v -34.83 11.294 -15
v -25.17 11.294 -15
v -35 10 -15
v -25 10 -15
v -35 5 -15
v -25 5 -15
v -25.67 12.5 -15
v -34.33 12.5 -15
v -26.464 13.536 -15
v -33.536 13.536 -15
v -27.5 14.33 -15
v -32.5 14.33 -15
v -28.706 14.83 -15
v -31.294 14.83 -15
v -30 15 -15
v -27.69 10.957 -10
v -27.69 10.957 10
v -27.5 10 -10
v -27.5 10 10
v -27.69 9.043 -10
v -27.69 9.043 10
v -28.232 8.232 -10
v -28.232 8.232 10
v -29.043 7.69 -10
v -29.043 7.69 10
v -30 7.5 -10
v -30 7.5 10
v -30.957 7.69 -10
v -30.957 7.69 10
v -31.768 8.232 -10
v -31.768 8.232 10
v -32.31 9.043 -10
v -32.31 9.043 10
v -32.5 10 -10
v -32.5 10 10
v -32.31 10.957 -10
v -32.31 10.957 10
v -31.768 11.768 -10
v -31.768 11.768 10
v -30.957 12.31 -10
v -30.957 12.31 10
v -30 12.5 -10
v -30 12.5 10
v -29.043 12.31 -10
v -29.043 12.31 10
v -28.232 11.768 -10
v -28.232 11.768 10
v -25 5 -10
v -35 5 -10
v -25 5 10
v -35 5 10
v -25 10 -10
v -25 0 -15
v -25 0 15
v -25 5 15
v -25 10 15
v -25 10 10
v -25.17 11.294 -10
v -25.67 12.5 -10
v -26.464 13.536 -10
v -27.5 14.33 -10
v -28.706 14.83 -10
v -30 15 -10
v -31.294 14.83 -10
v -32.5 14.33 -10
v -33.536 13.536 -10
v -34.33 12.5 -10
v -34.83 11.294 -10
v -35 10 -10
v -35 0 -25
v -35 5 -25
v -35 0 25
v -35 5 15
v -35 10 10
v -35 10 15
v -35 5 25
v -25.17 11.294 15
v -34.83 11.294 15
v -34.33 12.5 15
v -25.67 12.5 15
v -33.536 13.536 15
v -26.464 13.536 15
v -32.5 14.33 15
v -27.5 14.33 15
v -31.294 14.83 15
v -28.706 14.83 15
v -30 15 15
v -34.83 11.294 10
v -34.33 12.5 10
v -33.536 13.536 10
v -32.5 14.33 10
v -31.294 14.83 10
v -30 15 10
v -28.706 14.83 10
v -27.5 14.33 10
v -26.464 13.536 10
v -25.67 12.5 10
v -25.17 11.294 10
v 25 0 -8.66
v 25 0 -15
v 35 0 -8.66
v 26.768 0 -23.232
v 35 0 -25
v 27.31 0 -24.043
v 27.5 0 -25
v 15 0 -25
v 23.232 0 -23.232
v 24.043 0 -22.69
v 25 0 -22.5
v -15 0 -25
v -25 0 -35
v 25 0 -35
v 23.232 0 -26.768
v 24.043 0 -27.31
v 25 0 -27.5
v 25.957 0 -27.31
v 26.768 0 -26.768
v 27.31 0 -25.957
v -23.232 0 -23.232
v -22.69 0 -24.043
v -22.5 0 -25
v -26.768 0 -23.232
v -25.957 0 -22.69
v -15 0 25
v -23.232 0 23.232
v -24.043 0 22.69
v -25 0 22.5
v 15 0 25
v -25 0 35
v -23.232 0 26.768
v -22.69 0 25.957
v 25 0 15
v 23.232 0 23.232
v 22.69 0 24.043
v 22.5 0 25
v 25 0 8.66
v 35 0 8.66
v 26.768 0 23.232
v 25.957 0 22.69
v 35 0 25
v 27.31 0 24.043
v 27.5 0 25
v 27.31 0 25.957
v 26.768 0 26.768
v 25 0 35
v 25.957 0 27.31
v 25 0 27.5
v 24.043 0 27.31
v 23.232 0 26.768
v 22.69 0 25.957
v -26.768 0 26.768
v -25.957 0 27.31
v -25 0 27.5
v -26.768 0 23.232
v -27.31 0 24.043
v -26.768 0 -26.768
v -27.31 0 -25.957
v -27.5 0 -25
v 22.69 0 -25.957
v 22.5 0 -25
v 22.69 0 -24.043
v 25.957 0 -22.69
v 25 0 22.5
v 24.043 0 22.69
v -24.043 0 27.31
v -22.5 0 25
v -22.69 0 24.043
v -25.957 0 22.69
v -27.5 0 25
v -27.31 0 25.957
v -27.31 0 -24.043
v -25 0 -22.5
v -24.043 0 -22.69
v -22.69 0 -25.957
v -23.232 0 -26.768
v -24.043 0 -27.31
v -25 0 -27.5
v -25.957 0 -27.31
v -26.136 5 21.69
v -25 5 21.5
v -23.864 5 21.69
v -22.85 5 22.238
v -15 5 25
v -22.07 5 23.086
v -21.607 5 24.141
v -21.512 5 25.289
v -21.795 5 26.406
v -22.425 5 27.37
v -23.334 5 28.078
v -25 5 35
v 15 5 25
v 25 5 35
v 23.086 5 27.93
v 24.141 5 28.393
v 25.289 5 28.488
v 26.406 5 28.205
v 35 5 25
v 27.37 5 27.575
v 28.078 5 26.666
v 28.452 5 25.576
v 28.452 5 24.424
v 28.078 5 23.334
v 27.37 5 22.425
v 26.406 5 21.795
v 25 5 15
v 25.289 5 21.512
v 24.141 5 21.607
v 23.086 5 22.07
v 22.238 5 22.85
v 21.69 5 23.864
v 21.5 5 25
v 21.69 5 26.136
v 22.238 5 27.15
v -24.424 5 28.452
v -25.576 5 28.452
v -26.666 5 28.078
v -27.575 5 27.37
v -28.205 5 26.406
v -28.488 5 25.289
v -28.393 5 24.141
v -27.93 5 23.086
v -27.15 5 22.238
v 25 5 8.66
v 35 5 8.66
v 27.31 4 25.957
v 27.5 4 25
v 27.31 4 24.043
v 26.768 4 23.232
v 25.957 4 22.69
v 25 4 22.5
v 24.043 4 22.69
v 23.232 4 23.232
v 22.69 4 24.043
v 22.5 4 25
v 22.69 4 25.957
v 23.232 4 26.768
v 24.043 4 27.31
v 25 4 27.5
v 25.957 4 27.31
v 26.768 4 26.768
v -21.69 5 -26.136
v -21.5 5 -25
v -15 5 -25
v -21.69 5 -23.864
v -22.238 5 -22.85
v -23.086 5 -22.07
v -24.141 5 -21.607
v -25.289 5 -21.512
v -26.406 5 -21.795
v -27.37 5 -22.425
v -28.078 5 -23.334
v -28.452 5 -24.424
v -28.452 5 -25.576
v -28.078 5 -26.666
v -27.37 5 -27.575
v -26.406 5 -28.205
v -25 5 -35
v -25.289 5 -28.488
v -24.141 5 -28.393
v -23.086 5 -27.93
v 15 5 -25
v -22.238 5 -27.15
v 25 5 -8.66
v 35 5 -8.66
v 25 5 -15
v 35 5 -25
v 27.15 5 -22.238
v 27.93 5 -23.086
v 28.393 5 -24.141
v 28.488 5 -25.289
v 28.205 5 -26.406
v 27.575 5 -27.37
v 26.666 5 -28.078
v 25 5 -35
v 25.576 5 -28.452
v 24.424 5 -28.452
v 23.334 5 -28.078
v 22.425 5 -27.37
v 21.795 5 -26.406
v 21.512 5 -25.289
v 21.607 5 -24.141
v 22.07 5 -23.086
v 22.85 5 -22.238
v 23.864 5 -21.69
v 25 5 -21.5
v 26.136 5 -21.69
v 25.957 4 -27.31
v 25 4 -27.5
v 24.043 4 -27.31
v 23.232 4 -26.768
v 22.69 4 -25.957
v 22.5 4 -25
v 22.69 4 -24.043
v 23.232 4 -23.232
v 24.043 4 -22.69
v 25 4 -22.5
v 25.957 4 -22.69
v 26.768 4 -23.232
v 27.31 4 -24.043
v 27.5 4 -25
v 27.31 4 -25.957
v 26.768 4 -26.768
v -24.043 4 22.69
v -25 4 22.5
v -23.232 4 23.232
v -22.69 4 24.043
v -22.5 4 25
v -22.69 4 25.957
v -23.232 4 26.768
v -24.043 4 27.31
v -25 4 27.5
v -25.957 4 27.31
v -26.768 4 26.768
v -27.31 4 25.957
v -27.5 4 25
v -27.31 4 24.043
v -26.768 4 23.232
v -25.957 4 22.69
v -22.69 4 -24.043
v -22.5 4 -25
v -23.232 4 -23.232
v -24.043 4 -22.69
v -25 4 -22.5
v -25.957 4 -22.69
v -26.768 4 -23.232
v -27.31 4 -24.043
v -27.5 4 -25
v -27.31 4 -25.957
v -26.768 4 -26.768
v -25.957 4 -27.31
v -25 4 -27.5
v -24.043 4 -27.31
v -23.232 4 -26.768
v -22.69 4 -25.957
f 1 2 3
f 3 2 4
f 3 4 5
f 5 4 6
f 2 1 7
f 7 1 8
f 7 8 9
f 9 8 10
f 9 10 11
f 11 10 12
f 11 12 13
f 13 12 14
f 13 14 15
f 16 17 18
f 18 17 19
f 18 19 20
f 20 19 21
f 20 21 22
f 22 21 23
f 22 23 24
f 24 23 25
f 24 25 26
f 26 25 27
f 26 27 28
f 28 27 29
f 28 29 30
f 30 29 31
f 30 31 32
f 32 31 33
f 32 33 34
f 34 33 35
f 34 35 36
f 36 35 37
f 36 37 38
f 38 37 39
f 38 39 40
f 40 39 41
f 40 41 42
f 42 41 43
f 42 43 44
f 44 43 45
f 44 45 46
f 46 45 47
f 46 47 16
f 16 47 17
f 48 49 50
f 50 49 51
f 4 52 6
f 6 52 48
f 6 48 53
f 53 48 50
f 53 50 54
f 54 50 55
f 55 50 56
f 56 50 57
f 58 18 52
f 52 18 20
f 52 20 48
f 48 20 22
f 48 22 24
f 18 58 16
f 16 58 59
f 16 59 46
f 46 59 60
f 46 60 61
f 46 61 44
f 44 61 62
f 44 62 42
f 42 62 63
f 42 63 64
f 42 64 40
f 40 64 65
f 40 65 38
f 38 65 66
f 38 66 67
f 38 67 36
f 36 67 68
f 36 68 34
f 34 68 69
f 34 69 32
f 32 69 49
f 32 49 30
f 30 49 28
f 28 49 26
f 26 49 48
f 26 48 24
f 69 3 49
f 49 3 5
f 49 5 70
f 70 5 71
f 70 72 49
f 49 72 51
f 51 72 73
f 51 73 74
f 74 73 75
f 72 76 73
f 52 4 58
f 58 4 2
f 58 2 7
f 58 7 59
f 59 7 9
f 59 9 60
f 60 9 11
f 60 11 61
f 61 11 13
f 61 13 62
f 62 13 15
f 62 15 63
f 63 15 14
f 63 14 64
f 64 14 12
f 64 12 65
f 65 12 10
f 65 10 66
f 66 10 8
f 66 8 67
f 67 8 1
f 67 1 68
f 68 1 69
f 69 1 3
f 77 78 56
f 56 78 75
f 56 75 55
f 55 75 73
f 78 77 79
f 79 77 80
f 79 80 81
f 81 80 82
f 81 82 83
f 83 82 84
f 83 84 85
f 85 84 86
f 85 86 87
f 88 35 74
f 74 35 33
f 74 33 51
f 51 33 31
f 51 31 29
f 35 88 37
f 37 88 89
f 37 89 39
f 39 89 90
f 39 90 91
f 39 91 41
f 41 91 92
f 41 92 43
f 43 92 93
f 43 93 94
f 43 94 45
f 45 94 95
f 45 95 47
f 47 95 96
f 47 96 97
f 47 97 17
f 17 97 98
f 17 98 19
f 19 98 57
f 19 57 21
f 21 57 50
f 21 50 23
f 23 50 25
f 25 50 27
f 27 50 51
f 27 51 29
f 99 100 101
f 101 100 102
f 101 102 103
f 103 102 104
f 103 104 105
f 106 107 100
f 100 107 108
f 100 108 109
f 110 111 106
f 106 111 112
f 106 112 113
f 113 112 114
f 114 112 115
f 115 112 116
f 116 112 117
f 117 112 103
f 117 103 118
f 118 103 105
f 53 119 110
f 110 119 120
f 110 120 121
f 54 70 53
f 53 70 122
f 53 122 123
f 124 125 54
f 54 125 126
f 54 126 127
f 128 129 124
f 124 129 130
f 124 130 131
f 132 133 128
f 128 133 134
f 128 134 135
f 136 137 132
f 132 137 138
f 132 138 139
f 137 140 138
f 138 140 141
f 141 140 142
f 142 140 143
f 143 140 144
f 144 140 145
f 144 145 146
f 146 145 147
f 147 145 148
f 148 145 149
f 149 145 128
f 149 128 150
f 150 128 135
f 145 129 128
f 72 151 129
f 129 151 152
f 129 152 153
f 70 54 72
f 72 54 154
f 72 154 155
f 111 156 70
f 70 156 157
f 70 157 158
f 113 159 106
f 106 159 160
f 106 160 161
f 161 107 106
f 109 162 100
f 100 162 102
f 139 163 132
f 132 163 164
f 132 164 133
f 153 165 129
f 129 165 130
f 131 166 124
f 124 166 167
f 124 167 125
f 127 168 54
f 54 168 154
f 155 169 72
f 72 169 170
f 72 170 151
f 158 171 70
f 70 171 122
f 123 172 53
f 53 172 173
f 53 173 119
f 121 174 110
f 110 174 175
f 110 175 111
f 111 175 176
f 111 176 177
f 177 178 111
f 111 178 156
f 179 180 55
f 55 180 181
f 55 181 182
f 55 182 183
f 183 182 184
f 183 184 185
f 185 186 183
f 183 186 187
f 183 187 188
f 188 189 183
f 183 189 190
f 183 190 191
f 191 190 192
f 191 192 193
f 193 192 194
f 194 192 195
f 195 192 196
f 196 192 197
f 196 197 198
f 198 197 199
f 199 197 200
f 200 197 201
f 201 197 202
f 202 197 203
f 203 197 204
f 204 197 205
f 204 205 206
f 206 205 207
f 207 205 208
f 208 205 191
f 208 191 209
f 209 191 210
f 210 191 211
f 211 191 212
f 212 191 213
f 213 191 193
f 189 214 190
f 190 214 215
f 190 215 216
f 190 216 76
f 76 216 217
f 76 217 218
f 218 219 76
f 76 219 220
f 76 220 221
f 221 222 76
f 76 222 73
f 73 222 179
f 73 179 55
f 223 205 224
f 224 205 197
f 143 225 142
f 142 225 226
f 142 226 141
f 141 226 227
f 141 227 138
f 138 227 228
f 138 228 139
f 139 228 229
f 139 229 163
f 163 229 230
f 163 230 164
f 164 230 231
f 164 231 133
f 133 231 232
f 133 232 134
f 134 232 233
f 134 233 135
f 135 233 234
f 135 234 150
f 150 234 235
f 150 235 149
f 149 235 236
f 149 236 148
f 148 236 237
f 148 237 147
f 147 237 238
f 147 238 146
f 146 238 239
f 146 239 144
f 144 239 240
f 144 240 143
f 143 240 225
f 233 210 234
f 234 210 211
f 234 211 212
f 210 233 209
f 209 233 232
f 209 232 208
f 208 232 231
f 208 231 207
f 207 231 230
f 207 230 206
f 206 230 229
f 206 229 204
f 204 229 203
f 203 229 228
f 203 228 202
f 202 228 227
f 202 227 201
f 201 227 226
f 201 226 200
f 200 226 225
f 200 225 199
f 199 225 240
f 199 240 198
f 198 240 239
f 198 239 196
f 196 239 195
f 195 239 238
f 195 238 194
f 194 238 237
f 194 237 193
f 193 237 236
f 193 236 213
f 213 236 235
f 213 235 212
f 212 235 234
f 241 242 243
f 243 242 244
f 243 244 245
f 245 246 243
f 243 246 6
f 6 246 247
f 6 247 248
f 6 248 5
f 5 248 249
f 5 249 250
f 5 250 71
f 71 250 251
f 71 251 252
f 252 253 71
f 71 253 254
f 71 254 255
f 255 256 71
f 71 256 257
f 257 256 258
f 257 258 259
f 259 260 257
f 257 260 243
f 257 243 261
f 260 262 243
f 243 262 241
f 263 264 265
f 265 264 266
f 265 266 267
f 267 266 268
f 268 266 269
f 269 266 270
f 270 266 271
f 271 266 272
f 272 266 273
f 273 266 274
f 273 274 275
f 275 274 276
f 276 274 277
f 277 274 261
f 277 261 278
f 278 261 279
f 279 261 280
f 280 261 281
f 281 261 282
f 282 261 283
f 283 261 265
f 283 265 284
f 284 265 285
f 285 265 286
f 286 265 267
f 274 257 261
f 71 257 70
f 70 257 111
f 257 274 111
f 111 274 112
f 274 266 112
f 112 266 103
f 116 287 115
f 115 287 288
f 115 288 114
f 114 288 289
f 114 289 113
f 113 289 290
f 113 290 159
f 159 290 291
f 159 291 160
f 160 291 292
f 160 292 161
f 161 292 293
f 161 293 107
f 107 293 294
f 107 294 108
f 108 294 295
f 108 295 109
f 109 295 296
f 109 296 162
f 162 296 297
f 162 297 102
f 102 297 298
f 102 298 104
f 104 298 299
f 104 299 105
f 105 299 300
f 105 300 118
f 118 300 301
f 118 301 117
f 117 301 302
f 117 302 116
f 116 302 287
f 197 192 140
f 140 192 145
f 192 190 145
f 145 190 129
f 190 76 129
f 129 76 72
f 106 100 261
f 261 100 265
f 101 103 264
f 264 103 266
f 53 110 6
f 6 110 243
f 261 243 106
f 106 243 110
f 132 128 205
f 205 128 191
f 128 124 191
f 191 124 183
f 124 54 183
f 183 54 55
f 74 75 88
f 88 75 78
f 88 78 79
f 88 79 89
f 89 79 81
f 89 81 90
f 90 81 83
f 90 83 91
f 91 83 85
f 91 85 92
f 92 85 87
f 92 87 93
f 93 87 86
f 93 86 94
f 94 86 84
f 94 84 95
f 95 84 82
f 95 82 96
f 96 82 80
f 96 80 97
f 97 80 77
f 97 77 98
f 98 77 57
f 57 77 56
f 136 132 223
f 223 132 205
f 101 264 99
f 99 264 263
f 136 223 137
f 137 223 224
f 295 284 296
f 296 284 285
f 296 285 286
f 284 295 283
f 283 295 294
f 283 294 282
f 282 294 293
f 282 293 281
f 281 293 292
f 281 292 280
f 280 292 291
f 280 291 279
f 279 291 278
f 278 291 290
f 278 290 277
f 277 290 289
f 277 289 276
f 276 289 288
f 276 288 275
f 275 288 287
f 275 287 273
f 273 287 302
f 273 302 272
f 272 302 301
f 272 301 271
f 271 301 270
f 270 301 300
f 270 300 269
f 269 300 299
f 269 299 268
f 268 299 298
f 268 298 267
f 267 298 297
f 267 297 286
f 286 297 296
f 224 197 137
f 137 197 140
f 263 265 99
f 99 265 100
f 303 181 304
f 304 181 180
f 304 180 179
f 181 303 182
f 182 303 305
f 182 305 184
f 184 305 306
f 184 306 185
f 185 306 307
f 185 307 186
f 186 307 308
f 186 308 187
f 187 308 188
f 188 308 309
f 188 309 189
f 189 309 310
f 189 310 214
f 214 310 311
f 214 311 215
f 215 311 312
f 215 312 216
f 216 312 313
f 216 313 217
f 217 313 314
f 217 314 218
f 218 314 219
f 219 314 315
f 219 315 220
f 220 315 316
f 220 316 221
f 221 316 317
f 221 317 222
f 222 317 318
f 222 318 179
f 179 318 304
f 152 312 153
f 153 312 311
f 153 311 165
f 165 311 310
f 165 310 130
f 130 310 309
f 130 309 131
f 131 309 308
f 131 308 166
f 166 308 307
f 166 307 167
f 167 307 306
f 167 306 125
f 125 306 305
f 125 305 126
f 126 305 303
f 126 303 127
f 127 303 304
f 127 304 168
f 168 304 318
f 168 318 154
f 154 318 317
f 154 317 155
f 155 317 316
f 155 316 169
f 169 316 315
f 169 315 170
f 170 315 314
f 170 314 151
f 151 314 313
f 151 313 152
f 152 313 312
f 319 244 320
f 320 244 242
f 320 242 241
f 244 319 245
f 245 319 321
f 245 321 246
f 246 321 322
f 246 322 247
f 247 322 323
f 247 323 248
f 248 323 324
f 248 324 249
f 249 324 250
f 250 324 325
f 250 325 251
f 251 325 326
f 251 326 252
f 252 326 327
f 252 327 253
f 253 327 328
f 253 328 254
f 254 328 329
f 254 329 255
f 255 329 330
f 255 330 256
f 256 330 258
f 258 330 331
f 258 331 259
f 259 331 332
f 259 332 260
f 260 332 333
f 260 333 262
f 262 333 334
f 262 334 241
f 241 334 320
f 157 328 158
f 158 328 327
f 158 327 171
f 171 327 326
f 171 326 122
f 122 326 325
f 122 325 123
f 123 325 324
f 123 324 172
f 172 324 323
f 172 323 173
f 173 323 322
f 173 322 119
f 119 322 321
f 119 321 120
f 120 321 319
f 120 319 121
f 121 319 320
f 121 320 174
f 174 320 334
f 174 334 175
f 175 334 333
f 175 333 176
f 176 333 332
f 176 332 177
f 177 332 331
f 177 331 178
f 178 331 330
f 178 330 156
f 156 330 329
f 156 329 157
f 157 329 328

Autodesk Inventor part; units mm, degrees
ref_plane "YZ Plane" through (0, 0, 0) normal (1, 0, 0) x (0, 1, 0)
ref_plane "XZ Plane" through (0, 0, 0) normal (0, 1, 0) x (-1, 0, 0)
ref_plane "XY Plane" through (0, 0, 0) normal (0, 0, 1) x (1, 0, 0)
sketch "Sketch2" plane through (0, 0, 0) normal (0, 1, 0) x (-1, 0, 0)
  line L0 (35, -35) -> (-35, -35)
  line L1 (-35, -35) -> (-35, 35)
  line L2 (-35, 35) -> (35, 35)
  line L3 (35, 35) -> (35, -35)
  line L4 (35, -35) -> (-35, 35) construction
  line L5 (-35, -35) -> (35, 35) construction
  line L6 (25, 25) -> (-25, 25)
  line L7 (-25, 25) -> (-25, -25)
  line L8 (-25, -25) -> (25, -25)
  line L9 (25, -25) -> (25, 25)
  point P0 (0, 0)
  dimension "d0" = 70
  dimension "d1" = 10
  dimension "d27" = 70
extrude "Extrusion1" add sketch "Sketch2" along normal blind 5
chamfer "Chamfer1" distance 10 angle 45 8 edges at (-25, 2.5, 25) (25, 2.5, 25) (-25, 2.5, -25) (25, 2.5, -25) (-35, 2.5, 35) (35, 2.5, 35) (35, 2.5, -35) (-35, 2.5, -35)
sketch "Sketch3" plane through (0, 5, 0) normal (0, 1, 0) x (1, 0, 0)
  line L0 (-35, 25) -> (-35, -25) construction
  line L1 (25, 35) -> (-25, 35) construction
  circle A0 centre (-25, 25) radius 2.5
  point P0 (0, 0)
  dimension "d7" = 10
  dimension "d8" = 10
  dimension "d9" = 5
extrude "Extrusion2" cut sketch "Sketch3" against normal through all
pattern_circular "Circular Pattern1" count 4 over 360 about axis through (0, -10, 0) along (0, 1, 0) of "Extrusion2"
sketch "Sketch4" plane through (0, 0, 0) normal (0, 0, 1) x (1, 0, 0)
  line L0 (-35, 5) -> (-35, 0) construction
  line L1 (-35, 5) -> (-25, 5)
  line L2 (-25, 5) -> (-25, 15)
  line L3 (-25, 15) -> (-35, 15)
  line L4 (-35, 15) -> (-35, 5)
  point P0 (0, 0)
  dimension "d15" = 10
  dimension "d16" = 10
extrude "Extrusion3" add sketch "Sketch4" along normal mid plane 30
sketch "Sketch6" plane through (0, 0, 0) normal (0, 0, 1) x (1, 0, 0)
  circle A0 centre (-30, 10) radius 2.5
  line L0 (-25, 15) -> (-35, 15) construction
  line L1 (-35, 15) -> (-35, 5) construction
  line L2 (-27.5, 5) -> (-22.5, 5) construction
  line L3 (-35, 15) -> (-25, 15)
  line L4 (-25, 15) -> (-25, 5)
  line L5 (-25, 5) -> (-35, 5)
  line L6 (-35, 5) -> (-35, 15)
  point P0 (0, 0)
  point P1 (-30, 15)
  point P2 (-35, 10)
  dimension "d22" = 5
  dimension "d23" = 5
  dimension "d24" = 5
extrude "Extrusion4" cut sketch "Sketch6" along normal mid plane 20
sketch "Sketch7" plane through (35, 0, 25) normal (1, 0, 0) x (0, 0, -1)
  line L0 (50, 5) -> (50, 0) construction
  line L1 (16.3397, 5) -> (25, 10)
  line L2 (25, 10) -> (33.6603, 5)
  line L3 (33.6603, 5) -> (33.6603, -5)
  line L4 (33.6603, -5) -> (25, -10)
  line L5 (25, -10) -> (16.3397, -5)
  line L6 (16.3397, -5) -> (16.3397, 5)
  point P0 (25, 0)
  point P1 (25, 0)
  dimension "d28" = 10
extrude "Extrusion5" cut sketch "Sketch7" against normal blind 10
fillet "Fillet1" radius 5 4 edges at (-35, 15, 12.5) (-25, 15, 12.5) (-35, 15, -12.5) (-25, 15, -12.5)
chamfer "Chamfer2" distance 1 angle 45 4 edges at (-25, 5, 27.5) (-27.5, 5, -25) (25, 5, -27.5) (27.5, 5, 25)
properties part number "pokemon_ball_black_part1"
